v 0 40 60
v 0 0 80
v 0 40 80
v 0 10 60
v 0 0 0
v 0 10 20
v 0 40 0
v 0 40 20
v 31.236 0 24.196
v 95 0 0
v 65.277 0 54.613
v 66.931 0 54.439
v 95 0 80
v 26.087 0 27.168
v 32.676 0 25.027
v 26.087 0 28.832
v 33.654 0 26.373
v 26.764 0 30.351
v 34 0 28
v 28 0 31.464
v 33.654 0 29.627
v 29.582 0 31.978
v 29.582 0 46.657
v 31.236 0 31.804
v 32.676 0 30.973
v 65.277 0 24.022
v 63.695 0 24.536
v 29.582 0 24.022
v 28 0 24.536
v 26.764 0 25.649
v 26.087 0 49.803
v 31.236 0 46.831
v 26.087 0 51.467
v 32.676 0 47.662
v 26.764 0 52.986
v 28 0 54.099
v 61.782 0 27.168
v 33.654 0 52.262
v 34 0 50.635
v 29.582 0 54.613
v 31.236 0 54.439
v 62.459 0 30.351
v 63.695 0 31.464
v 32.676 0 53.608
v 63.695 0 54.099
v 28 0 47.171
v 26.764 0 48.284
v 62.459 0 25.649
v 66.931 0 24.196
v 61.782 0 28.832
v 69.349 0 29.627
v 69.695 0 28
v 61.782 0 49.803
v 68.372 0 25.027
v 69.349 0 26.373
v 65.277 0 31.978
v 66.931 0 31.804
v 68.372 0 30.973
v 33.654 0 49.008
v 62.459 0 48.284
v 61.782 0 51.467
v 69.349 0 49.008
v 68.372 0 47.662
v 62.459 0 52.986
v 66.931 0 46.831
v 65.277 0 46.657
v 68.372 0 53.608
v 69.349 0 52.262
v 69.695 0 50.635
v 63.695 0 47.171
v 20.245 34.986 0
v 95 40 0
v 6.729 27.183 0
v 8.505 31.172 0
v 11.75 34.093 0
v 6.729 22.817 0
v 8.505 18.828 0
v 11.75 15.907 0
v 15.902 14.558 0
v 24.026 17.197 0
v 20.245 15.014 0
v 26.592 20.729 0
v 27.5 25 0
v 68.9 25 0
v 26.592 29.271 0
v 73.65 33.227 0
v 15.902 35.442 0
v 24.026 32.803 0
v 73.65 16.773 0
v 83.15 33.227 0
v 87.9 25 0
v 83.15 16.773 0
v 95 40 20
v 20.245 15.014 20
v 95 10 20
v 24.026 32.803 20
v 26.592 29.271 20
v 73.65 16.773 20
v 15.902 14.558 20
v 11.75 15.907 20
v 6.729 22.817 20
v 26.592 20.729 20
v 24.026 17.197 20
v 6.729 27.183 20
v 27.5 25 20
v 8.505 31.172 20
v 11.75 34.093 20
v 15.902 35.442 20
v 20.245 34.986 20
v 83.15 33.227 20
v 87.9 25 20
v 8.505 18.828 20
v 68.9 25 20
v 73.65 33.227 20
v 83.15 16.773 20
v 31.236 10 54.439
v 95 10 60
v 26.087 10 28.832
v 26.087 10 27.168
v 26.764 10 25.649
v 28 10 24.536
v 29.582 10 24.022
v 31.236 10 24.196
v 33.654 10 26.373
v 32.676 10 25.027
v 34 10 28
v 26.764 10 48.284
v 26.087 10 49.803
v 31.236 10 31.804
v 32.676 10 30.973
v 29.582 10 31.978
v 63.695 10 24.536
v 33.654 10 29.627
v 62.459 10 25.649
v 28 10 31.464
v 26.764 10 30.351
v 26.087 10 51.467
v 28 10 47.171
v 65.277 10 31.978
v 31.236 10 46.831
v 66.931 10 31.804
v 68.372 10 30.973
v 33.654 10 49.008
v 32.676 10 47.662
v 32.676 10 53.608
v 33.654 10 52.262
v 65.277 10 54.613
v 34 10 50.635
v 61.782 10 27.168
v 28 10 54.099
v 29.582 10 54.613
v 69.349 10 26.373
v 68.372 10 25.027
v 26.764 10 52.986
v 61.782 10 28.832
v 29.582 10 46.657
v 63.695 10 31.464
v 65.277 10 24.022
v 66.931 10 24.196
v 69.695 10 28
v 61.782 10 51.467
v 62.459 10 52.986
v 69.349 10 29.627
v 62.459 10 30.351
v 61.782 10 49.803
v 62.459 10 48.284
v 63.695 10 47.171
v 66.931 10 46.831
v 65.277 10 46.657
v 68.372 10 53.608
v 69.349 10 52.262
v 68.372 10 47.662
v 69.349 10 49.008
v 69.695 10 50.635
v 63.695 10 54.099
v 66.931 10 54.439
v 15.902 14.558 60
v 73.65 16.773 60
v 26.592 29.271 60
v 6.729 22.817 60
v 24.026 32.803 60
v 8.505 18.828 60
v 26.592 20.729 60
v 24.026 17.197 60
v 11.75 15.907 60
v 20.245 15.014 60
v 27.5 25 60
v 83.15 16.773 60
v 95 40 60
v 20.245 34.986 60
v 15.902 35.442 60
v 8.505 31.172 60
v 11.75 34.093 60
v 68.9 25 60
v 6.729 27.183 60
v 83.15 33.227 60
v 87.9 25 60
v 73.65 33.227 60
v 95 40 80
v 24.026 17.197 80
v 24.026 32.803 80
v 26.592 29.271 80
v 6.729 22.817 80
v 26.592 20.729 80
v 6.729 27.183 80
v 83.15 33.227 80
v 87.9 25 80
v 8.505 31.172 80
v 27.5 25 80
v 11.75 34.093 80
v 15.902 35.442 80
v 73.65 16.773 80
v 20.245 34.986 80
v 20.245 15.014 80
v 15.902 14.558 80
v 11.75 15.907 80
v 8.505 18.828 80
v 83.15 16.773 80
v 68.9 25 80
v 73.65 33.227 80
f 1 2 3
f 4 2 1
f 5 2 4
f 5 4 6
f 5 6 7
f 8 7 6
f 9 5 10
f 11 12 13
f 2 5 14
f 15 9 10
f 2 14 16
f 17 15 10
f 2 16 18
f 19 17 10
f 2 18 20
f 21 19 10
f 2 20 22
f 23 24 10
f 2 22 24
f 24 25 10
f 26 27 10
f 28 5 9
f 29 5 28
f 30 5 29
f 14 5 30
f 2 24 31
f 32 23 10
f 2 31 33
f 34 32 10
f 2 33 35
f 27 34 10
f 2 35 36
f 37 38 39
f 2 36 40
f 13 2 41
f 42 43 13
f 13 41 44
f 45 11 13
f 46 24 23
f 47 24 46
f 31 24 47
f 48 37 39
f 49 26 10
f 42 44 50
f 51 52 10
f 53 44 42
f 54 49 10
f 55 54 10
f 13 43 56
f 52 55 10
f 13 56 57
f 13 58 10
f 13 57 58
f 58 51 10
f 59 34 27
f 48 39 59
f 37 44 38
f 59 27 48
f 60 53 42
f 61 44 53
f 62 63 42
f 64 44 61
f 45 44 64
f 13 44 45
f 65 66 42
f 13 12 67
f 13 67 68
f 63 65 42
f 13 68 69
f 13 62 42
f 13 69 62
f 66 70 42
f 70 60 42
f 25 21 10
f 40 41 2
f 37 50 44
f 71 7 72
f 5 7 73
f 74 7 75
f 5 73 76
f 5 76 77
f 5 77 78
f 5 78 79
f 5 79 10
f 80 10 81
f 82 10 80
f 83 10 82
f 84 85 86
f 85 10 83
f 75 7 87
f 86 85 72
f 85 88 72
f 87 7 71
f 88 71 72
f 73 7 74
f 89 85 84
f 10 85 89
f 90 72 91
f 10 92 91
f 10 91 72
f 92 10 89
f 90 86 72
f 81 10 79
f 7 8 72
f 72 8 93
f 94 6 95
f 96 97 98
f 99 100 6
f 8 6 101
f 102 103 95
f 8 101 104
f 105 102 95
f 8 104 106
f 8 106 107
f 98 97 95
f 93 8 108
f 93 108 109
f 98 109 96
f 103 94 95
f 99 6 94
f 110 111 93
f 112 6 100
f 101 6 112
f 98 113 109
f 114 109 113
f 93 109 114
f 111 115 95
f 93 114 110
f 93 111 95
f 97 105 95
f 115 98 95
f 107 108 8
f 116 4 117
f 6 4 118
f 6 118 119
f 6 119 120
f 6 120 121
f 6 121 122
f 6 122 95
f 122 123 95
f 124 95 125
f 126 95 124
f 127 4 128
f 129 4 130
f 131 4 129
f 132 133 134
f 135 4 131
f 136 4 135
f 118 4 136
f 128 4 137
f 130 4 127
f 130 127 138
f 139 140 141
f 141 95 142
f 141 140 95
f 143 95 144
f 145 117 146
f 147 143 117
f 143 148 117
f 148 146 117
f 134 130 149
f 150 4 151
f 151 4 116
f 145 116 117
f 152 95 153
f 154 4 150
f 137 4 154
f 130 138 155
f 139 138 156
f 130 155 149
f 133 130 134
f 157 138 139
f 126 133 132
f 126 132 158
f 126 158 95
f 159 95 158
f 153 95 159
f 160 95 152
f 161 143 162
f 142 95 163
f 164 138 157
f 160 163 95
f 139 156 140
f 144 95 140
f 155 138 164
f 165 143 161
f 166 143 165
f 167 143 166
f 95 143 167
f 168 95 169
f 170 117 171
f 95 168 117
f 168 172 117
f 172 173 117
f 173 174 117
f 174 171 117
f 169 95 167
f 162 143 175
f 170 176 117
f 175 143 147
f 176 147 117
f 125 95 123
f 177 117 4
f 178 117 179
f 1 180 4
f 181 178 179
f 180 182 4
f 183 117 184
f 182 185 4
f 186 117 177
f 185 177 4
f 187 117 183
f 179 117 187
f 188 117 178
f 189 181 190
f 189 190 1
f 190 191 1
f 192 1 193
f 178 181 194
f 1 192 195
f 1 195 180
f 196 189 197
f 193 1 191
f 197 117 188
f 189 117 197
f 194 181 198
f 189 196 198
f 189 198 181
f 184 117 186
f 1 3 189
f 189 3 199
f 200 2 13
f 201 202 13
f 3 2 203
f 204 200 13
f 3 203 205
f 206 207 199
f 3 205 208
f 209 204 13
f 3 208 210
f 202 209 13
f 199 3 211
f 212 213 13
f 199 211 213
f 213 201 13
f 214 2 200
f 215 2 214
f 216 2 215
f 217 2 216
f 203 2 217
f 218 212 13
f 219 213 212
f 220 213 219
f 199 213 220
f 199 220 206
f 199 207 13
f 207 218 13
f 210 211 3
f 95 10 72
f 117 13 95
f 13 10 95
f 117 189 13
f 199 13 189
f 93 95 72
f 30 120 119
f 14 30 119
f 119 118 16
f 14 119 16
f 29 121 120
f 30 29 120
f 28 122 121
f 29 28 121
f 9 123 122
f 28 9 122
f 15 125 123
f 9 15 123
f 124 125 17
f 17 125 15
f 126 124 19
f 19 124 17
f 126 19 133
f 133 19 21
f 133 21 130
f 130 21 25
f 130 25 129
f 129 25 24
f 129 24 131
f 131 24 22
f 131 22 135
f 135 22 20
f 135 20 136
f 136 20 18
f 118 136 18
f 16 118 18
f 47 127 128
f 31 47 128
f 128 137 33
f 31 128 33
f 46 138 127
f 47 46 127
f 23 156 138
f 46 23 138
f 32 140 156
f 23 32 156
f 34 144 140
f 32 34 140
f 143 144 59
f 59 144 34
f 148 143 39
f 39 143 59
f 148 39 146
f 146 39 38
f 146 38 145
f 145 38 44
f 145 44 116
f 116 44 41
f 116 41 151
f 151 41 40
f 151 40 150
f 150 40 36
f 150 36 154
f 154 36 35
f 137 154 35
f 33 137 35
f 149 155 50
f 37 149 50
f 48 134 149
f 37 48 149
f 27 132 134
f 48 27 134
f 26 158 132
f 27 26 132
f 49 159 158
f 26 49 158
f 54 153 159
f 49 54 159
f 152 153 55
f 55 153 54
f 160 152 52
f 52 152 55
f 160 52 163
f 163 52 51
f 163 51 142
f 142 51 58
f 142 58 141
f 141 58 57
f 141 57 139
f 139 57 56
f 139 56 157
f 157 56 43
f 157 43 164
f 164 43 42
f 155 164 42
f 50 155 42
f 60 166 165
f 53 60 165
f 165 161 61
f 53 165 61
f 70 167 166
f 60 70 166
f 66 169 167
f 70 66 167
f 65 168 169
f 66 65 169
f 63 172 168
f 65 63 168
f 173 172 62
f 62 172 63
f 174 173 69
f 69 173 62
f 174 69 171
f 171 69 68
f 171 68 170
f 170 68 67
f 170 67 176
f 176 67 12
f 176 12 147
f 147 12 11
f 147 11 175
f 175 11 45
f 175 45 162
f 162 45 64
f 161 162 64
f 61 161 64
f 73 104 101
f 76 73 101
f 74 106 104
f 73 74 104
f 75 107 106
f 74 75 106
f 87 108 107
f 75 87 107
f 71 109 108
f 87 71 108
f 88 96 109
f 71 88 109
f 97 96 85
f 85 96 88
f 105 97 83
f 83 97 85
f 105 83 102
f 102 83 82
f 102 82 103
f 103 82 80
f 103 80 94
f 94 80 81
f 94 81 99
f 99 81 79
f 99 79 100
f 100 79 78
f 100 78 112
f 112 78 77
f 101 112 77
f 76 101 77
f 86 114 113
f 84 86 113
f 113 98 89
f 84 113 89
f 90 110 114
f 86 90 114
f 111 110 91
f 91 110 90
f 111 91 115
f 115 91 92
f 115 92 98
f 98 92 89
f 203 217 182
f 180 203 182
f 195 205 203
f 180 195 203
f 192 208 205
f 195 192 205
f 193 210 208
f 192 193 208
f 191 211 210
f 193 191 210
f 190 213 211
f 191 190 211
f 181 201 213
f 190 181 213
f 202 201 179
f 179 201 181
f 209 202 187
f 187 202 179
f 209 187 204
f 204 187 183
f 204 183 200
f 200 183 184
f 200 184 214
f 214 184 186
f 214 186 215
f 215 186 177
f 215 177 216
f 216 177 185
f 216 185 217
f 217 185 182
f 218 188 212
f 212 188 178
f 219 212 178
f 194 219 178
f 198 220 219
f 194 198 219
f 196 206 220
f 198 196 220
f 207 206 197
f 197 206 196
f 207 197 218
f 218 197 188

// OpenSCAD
lungime_suport = 95;
latime_suport = 40;
inaltime_suport = 20;

diametru_gaura_suport = 21;
pozitie_gaura_suport = [6.5+diametru_gaura_suport/2, latime_suport/2+5, 0];

distanta_suport_filet = 41.4;
diametru_filet = 19;
pozitie_filet = [pozitie_gaura_suport[0] + distanta_suport_filet+(diametru_gaura_suport+diametru_filet)/2, latime_suport/2 +5, 0];

// Legaturile cu barele (TODO: IMPORT FROM axes_support!!!)


difference() {
	cube([lungime_suport, latime_suport, inaltime_suport]);
	translate(pozitie_gaura_suport)
	cylinder(h = 80, r=diametru_gaura_suport/2, $fn=15);
	translate(pozitie_filet)
	cylinder(h = 80, r=diametru_filet/2, $fn=6);

}

translate([0,0,60])
difference() {
	cube([lungime_suport, latime_suport, inaltime_suport]);
	translate(pozitie_gaura_suport)
	cylinder(h = 80, r=diametru_gaura_suport/2, $fn=15);
	translate(pozitie_filet)
	cylinder(h = 80, r=diametru_filet/2, $fn=6);
}


origine_gauri = [30, -1, 28];

// distanta dintre centrele gaurilor
dist_gauri_lun = 35.695;
dist_gauri_lat = 22.635;      

difference() {
translate([0,0,20])
cube([lungime_suport, 10, 40]);

//gauri TODO: measure
//rotate([0,90,0])
translate(origine_gauri)
{
rotate([-90,0,0])
cylinder(h=80, r=4, $fn=15);	

translate([dist_gauri_lun, 0, 0])
rotate([-90,0,0])
cylinder(h=80, r=4, $fn=15);

translate([0, 0, dist_gauri_lat])
rotate([-90,0,0])
cylinder(h=80, r=4, $fn=15);

translate([dist_gauri_lun, 0, dist_gauri_lat])
rotate([-90,0,0])
cylinder(h=80, r=4, $fn=15);

}
}
